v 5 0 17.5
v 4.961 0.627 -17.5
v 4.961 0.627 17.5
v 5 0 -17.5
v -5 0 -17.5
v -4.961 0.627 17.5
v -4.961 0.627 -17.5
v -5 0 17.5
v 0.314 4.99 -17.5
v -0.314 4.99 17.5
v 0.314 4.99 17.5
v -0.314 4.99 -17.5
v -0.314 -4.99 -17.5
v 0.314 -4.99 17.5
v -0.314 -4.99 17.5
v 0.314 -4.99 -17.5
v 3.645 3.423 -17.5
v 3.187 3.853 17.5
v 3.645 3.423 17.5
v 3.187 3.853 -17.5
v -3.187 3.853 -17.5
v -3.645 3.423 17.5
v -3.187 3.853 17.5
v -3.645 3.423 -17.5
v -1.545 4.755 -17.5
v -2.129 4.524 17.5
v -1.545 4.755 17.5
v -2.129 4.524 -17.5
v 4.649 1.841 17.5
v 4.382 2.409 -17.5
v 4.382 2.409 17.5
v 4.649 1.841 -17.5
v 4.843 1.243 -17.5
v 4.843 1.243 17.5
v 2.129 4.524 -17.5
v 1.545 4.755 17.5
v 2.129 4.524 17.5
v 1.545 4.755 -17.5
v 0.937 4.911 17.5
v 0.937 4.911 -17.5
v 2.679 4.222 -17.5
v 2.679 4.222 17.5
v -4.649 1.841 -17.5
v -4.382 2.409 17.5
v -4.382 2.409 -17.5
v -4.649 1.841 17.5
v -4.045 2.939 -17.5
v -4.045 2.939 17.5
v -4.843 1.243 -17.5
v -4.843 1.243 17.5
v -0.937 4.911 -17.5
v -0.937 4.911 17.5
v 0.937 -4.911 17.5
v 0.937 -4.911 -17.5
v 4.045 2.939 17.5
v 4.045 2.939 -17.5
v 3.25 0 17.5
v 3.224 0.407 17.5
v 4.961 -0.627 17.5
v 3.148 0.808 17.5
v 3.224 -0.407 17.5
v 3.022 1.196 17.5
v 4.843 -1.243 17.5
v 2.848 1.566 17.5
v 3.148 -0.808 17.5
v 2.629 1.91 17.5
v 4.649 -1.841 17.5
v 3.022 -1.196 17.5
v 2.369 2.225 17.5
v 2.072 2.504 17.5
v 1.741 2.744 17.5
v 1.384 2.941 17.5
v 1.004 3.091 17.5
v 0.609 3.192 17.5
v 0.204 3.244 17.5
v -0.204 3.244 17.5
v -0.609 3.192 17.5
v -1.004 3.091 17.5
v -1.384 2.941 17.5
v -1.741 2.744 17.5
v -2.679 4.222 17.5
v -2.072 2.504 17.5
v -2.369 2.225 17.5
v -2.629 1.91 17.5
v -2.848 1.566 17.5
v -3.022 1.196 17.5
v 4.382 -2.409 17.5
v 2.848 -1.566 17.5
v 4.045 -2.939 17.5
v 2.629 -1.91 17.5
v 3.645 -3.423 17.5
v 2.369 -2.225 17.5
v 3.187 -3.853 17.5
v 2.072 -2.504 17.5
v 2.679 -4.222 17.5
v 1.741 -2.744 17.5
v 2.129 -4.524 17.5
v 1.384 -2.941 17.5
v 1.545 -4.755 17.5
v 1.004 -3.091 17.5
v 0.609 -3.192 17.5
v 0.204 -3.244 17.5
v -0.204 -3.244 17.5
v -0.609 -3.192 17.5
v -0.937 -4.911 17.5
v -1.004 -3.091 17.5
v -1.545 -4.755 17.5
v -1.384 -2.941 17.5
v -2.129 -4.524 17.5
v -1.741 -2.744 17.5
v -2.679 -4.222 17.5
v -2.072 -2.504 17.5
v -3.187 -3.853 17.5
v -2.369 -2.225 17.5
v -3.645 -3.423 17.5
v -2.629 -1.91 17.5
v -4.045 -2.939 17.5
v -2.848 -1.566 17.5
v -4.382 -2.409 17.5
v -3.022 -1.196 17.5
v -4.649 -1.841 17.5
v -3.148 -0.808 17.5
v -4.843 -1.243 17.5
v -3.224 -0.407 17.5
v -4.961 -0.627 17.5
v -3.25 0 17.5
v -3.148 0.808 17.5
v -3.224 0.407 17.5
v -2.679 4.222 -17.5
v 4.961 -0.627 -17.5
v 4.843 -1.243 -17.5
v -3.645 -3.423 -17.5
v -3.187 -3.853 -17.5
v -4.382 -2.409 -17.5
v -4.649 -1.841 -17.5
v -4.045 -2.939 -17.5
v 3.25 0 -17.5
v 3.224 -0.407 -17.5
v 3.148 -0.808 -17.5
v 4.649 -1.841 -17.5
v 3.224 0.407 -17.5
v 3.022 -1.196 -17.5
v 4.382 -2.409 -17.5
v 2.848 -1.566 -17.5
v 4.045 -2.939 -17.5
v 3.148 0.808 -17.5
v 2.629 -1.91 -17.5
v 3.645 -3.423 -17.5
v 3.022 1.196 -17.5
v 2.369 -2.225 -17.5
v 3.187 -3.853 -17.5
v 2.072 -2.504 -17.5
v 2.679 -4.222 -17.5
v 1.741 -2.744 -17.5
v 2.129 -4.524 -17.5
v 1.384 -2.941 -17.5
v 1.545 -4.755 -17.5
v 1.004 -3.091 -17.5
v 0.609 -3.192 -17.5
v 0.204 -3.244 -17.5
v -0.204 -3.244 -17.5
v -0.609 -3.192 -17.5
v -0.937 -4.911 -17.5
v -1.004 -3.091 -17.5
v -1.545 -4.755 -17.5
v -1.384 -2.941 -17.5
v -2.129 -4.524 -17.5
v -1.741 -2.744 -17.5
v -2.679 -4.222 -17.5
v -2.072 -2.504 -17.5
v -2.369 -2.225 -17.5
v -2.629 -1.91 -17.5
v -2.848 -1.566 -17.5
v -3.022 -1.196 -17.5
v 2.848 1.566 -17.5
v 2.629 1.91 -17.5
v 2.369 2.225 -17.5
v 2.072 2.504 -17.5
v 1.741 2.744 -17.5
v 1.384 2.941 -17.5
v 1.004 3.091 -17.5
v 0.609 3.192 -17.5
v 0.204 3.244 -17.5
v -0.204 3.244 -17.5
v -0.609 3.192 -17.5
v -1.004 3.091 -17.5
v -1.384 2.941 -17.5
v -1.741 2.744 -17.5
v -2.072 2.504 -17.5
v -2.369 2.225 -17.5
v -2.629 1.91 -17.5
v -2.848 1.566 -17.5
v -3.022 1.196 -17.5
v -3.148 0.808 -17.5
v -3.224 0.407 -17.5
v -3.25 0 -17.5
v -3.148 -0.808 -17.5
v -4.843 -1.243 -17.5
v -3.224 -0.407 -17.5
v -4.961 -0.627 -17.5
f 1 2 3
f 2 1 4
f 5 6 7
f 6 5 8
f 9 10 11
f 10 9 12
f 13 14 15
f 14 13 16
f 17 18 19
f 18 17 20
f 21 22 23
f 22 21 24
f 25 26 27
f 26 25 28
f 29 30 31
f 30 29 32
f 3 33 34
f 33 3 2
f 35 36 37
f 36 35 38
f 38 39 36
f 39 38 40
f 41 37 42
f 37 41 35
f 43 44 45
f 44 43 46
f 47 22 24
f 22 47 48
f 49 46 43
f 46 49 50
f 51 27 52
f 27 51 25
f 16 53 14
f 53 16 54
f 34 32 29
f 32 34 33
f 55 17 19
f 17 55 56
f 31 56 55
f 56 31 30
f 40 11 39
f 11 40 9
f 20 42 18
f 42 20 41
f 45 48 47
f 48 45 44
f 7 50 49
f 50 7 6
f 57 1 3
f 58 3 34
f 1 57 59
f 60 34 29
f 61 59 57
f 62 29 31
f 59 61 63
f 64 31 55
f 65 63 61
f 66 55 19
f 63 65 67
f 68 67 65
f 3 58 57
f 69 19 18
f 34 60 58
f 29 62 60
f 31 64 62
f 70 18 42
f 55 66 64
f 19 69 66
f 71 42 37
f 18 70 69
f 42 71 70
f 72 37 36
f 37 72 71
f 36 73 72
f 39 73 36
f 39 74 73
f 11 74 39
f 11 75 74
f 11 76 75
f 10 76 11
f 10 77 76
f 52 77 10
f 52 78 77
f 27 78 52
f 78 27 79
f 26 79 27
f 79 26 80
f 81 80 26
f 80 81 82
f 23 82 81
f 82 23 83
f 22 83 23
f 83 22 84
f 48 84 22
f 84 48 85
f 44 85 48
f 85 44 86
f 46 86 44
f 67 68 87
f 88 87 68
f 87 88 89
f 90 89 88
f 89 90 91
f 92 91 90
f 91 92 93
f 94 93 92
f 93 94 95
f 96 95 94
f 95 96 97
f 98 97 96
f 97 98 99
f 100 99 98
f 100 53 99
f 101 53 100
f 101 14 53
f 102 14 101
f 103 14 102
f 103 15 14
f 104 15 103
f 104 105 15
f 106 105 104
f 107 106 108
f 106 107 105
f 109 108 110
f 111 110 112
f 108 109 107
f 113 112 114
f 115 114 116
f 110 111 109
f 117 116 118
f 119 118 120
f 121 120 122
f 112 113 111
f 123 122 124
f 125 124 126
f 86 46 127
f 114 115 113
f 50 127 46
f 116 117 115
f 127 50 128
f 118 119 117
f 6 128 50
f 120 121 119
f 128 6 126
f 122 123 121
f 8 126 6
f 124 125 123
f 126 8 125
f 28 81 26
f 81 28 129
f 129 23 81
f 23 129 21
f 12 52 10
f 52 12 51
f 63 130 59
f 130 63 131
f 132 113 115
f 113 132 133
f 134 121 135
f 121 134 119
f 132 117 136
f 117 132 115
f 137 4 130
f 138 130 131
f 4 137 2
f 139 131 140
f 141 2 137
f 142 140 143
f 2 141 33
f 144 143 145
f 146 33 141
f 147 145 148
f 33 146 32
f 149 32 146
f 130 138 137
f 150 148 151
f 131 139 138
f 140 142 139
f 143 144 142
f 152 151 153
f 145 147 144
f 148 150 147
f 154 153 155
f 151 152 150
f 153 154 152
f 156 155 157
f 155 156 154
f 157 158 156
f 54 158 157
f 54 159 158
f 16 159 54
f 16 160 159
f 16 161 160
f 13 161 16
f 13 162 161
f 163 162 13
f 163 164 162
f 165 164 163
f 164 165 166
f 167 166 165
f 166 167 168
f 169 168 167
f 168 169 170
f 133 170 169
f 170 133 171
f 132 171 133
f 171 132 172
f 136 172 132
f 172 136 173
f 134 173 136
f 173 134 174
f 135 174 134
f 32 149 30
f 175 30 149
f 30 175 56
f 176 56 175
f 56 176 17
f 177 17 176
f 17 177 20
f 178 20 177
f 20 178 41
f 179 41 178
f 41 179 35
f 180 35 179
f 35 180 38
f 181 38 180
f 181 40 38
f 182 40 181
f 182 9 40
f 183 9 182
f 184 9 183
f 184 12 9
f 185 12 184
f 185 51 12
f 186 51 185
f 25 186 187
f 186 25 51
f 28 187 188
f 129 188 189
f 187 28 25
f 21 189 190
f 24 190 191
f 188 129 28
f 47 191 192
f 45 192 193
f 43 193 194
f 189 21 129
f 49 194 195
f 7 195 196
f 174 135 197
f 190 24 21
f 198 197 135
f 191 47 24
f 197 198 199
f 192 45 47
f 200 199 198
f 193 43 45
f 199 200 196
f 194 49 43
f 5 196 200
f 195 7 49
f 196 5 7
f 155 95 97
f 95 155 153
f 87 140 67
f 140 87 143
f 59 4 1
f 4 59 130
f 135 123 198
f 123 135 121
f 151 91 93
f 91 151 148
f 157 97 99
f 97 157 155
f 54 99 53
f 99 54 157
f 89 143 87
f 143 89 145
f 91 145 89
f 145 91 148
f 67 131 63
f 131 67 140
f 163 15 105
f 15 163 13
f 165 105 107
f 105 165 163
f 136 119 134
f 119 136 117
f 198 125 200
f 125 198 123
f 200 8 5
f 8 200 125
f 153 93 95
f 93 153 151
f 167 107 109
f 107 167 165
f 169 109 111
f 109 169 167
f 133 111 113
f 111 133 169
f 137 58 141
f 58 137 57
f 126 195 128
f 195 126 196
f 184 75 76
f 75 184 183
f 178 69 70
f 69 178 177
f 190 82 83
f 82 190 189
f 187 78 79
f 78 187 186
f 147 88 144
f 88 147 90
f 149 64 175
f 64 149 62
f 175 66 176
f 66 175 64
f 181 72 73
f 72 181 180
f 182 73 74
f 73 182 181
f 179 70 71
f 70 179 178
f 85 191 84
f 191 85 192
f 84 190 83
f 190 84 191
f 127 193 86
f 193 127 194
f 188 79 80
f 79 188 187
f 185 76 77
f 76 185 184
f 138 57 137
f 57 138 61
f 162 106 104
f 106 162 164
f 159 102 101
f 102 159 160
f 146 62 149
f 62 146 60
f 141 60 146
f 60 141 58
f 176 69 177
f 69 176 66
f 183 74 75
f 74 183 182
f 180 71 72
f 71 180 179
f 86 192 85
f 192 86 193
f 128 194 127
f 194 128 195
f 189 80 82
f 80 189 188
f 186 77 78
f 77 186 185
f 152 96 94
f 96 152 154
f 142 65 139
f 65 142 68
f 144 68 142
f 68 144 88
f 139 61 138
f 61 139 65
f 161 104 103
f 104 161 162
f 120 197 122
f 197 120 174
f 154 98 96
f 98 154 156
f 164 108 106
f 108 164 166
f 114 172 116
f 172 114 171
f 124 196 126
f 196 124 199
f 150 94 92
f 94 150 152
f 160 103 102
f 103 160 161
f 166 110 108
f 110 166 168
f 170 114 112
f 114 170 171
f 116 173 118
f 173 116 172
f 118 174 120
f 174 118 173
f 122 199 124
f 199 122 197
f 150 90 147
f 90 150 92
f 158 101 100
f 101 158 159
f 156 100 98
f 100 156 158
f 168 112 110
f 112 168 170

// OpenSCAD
$fn = 50;


difference() {
	union() {
		translate(v = [0, 0, -17.5000000000]) {
			cylinder(h = 35, r = 5.0000000000);
		}
	}
	union() {
		translate(v = [0, 0, -100.0000000000]) {
			cylinder(h = 200, r = 3.2500000000);
		}
	}
}
